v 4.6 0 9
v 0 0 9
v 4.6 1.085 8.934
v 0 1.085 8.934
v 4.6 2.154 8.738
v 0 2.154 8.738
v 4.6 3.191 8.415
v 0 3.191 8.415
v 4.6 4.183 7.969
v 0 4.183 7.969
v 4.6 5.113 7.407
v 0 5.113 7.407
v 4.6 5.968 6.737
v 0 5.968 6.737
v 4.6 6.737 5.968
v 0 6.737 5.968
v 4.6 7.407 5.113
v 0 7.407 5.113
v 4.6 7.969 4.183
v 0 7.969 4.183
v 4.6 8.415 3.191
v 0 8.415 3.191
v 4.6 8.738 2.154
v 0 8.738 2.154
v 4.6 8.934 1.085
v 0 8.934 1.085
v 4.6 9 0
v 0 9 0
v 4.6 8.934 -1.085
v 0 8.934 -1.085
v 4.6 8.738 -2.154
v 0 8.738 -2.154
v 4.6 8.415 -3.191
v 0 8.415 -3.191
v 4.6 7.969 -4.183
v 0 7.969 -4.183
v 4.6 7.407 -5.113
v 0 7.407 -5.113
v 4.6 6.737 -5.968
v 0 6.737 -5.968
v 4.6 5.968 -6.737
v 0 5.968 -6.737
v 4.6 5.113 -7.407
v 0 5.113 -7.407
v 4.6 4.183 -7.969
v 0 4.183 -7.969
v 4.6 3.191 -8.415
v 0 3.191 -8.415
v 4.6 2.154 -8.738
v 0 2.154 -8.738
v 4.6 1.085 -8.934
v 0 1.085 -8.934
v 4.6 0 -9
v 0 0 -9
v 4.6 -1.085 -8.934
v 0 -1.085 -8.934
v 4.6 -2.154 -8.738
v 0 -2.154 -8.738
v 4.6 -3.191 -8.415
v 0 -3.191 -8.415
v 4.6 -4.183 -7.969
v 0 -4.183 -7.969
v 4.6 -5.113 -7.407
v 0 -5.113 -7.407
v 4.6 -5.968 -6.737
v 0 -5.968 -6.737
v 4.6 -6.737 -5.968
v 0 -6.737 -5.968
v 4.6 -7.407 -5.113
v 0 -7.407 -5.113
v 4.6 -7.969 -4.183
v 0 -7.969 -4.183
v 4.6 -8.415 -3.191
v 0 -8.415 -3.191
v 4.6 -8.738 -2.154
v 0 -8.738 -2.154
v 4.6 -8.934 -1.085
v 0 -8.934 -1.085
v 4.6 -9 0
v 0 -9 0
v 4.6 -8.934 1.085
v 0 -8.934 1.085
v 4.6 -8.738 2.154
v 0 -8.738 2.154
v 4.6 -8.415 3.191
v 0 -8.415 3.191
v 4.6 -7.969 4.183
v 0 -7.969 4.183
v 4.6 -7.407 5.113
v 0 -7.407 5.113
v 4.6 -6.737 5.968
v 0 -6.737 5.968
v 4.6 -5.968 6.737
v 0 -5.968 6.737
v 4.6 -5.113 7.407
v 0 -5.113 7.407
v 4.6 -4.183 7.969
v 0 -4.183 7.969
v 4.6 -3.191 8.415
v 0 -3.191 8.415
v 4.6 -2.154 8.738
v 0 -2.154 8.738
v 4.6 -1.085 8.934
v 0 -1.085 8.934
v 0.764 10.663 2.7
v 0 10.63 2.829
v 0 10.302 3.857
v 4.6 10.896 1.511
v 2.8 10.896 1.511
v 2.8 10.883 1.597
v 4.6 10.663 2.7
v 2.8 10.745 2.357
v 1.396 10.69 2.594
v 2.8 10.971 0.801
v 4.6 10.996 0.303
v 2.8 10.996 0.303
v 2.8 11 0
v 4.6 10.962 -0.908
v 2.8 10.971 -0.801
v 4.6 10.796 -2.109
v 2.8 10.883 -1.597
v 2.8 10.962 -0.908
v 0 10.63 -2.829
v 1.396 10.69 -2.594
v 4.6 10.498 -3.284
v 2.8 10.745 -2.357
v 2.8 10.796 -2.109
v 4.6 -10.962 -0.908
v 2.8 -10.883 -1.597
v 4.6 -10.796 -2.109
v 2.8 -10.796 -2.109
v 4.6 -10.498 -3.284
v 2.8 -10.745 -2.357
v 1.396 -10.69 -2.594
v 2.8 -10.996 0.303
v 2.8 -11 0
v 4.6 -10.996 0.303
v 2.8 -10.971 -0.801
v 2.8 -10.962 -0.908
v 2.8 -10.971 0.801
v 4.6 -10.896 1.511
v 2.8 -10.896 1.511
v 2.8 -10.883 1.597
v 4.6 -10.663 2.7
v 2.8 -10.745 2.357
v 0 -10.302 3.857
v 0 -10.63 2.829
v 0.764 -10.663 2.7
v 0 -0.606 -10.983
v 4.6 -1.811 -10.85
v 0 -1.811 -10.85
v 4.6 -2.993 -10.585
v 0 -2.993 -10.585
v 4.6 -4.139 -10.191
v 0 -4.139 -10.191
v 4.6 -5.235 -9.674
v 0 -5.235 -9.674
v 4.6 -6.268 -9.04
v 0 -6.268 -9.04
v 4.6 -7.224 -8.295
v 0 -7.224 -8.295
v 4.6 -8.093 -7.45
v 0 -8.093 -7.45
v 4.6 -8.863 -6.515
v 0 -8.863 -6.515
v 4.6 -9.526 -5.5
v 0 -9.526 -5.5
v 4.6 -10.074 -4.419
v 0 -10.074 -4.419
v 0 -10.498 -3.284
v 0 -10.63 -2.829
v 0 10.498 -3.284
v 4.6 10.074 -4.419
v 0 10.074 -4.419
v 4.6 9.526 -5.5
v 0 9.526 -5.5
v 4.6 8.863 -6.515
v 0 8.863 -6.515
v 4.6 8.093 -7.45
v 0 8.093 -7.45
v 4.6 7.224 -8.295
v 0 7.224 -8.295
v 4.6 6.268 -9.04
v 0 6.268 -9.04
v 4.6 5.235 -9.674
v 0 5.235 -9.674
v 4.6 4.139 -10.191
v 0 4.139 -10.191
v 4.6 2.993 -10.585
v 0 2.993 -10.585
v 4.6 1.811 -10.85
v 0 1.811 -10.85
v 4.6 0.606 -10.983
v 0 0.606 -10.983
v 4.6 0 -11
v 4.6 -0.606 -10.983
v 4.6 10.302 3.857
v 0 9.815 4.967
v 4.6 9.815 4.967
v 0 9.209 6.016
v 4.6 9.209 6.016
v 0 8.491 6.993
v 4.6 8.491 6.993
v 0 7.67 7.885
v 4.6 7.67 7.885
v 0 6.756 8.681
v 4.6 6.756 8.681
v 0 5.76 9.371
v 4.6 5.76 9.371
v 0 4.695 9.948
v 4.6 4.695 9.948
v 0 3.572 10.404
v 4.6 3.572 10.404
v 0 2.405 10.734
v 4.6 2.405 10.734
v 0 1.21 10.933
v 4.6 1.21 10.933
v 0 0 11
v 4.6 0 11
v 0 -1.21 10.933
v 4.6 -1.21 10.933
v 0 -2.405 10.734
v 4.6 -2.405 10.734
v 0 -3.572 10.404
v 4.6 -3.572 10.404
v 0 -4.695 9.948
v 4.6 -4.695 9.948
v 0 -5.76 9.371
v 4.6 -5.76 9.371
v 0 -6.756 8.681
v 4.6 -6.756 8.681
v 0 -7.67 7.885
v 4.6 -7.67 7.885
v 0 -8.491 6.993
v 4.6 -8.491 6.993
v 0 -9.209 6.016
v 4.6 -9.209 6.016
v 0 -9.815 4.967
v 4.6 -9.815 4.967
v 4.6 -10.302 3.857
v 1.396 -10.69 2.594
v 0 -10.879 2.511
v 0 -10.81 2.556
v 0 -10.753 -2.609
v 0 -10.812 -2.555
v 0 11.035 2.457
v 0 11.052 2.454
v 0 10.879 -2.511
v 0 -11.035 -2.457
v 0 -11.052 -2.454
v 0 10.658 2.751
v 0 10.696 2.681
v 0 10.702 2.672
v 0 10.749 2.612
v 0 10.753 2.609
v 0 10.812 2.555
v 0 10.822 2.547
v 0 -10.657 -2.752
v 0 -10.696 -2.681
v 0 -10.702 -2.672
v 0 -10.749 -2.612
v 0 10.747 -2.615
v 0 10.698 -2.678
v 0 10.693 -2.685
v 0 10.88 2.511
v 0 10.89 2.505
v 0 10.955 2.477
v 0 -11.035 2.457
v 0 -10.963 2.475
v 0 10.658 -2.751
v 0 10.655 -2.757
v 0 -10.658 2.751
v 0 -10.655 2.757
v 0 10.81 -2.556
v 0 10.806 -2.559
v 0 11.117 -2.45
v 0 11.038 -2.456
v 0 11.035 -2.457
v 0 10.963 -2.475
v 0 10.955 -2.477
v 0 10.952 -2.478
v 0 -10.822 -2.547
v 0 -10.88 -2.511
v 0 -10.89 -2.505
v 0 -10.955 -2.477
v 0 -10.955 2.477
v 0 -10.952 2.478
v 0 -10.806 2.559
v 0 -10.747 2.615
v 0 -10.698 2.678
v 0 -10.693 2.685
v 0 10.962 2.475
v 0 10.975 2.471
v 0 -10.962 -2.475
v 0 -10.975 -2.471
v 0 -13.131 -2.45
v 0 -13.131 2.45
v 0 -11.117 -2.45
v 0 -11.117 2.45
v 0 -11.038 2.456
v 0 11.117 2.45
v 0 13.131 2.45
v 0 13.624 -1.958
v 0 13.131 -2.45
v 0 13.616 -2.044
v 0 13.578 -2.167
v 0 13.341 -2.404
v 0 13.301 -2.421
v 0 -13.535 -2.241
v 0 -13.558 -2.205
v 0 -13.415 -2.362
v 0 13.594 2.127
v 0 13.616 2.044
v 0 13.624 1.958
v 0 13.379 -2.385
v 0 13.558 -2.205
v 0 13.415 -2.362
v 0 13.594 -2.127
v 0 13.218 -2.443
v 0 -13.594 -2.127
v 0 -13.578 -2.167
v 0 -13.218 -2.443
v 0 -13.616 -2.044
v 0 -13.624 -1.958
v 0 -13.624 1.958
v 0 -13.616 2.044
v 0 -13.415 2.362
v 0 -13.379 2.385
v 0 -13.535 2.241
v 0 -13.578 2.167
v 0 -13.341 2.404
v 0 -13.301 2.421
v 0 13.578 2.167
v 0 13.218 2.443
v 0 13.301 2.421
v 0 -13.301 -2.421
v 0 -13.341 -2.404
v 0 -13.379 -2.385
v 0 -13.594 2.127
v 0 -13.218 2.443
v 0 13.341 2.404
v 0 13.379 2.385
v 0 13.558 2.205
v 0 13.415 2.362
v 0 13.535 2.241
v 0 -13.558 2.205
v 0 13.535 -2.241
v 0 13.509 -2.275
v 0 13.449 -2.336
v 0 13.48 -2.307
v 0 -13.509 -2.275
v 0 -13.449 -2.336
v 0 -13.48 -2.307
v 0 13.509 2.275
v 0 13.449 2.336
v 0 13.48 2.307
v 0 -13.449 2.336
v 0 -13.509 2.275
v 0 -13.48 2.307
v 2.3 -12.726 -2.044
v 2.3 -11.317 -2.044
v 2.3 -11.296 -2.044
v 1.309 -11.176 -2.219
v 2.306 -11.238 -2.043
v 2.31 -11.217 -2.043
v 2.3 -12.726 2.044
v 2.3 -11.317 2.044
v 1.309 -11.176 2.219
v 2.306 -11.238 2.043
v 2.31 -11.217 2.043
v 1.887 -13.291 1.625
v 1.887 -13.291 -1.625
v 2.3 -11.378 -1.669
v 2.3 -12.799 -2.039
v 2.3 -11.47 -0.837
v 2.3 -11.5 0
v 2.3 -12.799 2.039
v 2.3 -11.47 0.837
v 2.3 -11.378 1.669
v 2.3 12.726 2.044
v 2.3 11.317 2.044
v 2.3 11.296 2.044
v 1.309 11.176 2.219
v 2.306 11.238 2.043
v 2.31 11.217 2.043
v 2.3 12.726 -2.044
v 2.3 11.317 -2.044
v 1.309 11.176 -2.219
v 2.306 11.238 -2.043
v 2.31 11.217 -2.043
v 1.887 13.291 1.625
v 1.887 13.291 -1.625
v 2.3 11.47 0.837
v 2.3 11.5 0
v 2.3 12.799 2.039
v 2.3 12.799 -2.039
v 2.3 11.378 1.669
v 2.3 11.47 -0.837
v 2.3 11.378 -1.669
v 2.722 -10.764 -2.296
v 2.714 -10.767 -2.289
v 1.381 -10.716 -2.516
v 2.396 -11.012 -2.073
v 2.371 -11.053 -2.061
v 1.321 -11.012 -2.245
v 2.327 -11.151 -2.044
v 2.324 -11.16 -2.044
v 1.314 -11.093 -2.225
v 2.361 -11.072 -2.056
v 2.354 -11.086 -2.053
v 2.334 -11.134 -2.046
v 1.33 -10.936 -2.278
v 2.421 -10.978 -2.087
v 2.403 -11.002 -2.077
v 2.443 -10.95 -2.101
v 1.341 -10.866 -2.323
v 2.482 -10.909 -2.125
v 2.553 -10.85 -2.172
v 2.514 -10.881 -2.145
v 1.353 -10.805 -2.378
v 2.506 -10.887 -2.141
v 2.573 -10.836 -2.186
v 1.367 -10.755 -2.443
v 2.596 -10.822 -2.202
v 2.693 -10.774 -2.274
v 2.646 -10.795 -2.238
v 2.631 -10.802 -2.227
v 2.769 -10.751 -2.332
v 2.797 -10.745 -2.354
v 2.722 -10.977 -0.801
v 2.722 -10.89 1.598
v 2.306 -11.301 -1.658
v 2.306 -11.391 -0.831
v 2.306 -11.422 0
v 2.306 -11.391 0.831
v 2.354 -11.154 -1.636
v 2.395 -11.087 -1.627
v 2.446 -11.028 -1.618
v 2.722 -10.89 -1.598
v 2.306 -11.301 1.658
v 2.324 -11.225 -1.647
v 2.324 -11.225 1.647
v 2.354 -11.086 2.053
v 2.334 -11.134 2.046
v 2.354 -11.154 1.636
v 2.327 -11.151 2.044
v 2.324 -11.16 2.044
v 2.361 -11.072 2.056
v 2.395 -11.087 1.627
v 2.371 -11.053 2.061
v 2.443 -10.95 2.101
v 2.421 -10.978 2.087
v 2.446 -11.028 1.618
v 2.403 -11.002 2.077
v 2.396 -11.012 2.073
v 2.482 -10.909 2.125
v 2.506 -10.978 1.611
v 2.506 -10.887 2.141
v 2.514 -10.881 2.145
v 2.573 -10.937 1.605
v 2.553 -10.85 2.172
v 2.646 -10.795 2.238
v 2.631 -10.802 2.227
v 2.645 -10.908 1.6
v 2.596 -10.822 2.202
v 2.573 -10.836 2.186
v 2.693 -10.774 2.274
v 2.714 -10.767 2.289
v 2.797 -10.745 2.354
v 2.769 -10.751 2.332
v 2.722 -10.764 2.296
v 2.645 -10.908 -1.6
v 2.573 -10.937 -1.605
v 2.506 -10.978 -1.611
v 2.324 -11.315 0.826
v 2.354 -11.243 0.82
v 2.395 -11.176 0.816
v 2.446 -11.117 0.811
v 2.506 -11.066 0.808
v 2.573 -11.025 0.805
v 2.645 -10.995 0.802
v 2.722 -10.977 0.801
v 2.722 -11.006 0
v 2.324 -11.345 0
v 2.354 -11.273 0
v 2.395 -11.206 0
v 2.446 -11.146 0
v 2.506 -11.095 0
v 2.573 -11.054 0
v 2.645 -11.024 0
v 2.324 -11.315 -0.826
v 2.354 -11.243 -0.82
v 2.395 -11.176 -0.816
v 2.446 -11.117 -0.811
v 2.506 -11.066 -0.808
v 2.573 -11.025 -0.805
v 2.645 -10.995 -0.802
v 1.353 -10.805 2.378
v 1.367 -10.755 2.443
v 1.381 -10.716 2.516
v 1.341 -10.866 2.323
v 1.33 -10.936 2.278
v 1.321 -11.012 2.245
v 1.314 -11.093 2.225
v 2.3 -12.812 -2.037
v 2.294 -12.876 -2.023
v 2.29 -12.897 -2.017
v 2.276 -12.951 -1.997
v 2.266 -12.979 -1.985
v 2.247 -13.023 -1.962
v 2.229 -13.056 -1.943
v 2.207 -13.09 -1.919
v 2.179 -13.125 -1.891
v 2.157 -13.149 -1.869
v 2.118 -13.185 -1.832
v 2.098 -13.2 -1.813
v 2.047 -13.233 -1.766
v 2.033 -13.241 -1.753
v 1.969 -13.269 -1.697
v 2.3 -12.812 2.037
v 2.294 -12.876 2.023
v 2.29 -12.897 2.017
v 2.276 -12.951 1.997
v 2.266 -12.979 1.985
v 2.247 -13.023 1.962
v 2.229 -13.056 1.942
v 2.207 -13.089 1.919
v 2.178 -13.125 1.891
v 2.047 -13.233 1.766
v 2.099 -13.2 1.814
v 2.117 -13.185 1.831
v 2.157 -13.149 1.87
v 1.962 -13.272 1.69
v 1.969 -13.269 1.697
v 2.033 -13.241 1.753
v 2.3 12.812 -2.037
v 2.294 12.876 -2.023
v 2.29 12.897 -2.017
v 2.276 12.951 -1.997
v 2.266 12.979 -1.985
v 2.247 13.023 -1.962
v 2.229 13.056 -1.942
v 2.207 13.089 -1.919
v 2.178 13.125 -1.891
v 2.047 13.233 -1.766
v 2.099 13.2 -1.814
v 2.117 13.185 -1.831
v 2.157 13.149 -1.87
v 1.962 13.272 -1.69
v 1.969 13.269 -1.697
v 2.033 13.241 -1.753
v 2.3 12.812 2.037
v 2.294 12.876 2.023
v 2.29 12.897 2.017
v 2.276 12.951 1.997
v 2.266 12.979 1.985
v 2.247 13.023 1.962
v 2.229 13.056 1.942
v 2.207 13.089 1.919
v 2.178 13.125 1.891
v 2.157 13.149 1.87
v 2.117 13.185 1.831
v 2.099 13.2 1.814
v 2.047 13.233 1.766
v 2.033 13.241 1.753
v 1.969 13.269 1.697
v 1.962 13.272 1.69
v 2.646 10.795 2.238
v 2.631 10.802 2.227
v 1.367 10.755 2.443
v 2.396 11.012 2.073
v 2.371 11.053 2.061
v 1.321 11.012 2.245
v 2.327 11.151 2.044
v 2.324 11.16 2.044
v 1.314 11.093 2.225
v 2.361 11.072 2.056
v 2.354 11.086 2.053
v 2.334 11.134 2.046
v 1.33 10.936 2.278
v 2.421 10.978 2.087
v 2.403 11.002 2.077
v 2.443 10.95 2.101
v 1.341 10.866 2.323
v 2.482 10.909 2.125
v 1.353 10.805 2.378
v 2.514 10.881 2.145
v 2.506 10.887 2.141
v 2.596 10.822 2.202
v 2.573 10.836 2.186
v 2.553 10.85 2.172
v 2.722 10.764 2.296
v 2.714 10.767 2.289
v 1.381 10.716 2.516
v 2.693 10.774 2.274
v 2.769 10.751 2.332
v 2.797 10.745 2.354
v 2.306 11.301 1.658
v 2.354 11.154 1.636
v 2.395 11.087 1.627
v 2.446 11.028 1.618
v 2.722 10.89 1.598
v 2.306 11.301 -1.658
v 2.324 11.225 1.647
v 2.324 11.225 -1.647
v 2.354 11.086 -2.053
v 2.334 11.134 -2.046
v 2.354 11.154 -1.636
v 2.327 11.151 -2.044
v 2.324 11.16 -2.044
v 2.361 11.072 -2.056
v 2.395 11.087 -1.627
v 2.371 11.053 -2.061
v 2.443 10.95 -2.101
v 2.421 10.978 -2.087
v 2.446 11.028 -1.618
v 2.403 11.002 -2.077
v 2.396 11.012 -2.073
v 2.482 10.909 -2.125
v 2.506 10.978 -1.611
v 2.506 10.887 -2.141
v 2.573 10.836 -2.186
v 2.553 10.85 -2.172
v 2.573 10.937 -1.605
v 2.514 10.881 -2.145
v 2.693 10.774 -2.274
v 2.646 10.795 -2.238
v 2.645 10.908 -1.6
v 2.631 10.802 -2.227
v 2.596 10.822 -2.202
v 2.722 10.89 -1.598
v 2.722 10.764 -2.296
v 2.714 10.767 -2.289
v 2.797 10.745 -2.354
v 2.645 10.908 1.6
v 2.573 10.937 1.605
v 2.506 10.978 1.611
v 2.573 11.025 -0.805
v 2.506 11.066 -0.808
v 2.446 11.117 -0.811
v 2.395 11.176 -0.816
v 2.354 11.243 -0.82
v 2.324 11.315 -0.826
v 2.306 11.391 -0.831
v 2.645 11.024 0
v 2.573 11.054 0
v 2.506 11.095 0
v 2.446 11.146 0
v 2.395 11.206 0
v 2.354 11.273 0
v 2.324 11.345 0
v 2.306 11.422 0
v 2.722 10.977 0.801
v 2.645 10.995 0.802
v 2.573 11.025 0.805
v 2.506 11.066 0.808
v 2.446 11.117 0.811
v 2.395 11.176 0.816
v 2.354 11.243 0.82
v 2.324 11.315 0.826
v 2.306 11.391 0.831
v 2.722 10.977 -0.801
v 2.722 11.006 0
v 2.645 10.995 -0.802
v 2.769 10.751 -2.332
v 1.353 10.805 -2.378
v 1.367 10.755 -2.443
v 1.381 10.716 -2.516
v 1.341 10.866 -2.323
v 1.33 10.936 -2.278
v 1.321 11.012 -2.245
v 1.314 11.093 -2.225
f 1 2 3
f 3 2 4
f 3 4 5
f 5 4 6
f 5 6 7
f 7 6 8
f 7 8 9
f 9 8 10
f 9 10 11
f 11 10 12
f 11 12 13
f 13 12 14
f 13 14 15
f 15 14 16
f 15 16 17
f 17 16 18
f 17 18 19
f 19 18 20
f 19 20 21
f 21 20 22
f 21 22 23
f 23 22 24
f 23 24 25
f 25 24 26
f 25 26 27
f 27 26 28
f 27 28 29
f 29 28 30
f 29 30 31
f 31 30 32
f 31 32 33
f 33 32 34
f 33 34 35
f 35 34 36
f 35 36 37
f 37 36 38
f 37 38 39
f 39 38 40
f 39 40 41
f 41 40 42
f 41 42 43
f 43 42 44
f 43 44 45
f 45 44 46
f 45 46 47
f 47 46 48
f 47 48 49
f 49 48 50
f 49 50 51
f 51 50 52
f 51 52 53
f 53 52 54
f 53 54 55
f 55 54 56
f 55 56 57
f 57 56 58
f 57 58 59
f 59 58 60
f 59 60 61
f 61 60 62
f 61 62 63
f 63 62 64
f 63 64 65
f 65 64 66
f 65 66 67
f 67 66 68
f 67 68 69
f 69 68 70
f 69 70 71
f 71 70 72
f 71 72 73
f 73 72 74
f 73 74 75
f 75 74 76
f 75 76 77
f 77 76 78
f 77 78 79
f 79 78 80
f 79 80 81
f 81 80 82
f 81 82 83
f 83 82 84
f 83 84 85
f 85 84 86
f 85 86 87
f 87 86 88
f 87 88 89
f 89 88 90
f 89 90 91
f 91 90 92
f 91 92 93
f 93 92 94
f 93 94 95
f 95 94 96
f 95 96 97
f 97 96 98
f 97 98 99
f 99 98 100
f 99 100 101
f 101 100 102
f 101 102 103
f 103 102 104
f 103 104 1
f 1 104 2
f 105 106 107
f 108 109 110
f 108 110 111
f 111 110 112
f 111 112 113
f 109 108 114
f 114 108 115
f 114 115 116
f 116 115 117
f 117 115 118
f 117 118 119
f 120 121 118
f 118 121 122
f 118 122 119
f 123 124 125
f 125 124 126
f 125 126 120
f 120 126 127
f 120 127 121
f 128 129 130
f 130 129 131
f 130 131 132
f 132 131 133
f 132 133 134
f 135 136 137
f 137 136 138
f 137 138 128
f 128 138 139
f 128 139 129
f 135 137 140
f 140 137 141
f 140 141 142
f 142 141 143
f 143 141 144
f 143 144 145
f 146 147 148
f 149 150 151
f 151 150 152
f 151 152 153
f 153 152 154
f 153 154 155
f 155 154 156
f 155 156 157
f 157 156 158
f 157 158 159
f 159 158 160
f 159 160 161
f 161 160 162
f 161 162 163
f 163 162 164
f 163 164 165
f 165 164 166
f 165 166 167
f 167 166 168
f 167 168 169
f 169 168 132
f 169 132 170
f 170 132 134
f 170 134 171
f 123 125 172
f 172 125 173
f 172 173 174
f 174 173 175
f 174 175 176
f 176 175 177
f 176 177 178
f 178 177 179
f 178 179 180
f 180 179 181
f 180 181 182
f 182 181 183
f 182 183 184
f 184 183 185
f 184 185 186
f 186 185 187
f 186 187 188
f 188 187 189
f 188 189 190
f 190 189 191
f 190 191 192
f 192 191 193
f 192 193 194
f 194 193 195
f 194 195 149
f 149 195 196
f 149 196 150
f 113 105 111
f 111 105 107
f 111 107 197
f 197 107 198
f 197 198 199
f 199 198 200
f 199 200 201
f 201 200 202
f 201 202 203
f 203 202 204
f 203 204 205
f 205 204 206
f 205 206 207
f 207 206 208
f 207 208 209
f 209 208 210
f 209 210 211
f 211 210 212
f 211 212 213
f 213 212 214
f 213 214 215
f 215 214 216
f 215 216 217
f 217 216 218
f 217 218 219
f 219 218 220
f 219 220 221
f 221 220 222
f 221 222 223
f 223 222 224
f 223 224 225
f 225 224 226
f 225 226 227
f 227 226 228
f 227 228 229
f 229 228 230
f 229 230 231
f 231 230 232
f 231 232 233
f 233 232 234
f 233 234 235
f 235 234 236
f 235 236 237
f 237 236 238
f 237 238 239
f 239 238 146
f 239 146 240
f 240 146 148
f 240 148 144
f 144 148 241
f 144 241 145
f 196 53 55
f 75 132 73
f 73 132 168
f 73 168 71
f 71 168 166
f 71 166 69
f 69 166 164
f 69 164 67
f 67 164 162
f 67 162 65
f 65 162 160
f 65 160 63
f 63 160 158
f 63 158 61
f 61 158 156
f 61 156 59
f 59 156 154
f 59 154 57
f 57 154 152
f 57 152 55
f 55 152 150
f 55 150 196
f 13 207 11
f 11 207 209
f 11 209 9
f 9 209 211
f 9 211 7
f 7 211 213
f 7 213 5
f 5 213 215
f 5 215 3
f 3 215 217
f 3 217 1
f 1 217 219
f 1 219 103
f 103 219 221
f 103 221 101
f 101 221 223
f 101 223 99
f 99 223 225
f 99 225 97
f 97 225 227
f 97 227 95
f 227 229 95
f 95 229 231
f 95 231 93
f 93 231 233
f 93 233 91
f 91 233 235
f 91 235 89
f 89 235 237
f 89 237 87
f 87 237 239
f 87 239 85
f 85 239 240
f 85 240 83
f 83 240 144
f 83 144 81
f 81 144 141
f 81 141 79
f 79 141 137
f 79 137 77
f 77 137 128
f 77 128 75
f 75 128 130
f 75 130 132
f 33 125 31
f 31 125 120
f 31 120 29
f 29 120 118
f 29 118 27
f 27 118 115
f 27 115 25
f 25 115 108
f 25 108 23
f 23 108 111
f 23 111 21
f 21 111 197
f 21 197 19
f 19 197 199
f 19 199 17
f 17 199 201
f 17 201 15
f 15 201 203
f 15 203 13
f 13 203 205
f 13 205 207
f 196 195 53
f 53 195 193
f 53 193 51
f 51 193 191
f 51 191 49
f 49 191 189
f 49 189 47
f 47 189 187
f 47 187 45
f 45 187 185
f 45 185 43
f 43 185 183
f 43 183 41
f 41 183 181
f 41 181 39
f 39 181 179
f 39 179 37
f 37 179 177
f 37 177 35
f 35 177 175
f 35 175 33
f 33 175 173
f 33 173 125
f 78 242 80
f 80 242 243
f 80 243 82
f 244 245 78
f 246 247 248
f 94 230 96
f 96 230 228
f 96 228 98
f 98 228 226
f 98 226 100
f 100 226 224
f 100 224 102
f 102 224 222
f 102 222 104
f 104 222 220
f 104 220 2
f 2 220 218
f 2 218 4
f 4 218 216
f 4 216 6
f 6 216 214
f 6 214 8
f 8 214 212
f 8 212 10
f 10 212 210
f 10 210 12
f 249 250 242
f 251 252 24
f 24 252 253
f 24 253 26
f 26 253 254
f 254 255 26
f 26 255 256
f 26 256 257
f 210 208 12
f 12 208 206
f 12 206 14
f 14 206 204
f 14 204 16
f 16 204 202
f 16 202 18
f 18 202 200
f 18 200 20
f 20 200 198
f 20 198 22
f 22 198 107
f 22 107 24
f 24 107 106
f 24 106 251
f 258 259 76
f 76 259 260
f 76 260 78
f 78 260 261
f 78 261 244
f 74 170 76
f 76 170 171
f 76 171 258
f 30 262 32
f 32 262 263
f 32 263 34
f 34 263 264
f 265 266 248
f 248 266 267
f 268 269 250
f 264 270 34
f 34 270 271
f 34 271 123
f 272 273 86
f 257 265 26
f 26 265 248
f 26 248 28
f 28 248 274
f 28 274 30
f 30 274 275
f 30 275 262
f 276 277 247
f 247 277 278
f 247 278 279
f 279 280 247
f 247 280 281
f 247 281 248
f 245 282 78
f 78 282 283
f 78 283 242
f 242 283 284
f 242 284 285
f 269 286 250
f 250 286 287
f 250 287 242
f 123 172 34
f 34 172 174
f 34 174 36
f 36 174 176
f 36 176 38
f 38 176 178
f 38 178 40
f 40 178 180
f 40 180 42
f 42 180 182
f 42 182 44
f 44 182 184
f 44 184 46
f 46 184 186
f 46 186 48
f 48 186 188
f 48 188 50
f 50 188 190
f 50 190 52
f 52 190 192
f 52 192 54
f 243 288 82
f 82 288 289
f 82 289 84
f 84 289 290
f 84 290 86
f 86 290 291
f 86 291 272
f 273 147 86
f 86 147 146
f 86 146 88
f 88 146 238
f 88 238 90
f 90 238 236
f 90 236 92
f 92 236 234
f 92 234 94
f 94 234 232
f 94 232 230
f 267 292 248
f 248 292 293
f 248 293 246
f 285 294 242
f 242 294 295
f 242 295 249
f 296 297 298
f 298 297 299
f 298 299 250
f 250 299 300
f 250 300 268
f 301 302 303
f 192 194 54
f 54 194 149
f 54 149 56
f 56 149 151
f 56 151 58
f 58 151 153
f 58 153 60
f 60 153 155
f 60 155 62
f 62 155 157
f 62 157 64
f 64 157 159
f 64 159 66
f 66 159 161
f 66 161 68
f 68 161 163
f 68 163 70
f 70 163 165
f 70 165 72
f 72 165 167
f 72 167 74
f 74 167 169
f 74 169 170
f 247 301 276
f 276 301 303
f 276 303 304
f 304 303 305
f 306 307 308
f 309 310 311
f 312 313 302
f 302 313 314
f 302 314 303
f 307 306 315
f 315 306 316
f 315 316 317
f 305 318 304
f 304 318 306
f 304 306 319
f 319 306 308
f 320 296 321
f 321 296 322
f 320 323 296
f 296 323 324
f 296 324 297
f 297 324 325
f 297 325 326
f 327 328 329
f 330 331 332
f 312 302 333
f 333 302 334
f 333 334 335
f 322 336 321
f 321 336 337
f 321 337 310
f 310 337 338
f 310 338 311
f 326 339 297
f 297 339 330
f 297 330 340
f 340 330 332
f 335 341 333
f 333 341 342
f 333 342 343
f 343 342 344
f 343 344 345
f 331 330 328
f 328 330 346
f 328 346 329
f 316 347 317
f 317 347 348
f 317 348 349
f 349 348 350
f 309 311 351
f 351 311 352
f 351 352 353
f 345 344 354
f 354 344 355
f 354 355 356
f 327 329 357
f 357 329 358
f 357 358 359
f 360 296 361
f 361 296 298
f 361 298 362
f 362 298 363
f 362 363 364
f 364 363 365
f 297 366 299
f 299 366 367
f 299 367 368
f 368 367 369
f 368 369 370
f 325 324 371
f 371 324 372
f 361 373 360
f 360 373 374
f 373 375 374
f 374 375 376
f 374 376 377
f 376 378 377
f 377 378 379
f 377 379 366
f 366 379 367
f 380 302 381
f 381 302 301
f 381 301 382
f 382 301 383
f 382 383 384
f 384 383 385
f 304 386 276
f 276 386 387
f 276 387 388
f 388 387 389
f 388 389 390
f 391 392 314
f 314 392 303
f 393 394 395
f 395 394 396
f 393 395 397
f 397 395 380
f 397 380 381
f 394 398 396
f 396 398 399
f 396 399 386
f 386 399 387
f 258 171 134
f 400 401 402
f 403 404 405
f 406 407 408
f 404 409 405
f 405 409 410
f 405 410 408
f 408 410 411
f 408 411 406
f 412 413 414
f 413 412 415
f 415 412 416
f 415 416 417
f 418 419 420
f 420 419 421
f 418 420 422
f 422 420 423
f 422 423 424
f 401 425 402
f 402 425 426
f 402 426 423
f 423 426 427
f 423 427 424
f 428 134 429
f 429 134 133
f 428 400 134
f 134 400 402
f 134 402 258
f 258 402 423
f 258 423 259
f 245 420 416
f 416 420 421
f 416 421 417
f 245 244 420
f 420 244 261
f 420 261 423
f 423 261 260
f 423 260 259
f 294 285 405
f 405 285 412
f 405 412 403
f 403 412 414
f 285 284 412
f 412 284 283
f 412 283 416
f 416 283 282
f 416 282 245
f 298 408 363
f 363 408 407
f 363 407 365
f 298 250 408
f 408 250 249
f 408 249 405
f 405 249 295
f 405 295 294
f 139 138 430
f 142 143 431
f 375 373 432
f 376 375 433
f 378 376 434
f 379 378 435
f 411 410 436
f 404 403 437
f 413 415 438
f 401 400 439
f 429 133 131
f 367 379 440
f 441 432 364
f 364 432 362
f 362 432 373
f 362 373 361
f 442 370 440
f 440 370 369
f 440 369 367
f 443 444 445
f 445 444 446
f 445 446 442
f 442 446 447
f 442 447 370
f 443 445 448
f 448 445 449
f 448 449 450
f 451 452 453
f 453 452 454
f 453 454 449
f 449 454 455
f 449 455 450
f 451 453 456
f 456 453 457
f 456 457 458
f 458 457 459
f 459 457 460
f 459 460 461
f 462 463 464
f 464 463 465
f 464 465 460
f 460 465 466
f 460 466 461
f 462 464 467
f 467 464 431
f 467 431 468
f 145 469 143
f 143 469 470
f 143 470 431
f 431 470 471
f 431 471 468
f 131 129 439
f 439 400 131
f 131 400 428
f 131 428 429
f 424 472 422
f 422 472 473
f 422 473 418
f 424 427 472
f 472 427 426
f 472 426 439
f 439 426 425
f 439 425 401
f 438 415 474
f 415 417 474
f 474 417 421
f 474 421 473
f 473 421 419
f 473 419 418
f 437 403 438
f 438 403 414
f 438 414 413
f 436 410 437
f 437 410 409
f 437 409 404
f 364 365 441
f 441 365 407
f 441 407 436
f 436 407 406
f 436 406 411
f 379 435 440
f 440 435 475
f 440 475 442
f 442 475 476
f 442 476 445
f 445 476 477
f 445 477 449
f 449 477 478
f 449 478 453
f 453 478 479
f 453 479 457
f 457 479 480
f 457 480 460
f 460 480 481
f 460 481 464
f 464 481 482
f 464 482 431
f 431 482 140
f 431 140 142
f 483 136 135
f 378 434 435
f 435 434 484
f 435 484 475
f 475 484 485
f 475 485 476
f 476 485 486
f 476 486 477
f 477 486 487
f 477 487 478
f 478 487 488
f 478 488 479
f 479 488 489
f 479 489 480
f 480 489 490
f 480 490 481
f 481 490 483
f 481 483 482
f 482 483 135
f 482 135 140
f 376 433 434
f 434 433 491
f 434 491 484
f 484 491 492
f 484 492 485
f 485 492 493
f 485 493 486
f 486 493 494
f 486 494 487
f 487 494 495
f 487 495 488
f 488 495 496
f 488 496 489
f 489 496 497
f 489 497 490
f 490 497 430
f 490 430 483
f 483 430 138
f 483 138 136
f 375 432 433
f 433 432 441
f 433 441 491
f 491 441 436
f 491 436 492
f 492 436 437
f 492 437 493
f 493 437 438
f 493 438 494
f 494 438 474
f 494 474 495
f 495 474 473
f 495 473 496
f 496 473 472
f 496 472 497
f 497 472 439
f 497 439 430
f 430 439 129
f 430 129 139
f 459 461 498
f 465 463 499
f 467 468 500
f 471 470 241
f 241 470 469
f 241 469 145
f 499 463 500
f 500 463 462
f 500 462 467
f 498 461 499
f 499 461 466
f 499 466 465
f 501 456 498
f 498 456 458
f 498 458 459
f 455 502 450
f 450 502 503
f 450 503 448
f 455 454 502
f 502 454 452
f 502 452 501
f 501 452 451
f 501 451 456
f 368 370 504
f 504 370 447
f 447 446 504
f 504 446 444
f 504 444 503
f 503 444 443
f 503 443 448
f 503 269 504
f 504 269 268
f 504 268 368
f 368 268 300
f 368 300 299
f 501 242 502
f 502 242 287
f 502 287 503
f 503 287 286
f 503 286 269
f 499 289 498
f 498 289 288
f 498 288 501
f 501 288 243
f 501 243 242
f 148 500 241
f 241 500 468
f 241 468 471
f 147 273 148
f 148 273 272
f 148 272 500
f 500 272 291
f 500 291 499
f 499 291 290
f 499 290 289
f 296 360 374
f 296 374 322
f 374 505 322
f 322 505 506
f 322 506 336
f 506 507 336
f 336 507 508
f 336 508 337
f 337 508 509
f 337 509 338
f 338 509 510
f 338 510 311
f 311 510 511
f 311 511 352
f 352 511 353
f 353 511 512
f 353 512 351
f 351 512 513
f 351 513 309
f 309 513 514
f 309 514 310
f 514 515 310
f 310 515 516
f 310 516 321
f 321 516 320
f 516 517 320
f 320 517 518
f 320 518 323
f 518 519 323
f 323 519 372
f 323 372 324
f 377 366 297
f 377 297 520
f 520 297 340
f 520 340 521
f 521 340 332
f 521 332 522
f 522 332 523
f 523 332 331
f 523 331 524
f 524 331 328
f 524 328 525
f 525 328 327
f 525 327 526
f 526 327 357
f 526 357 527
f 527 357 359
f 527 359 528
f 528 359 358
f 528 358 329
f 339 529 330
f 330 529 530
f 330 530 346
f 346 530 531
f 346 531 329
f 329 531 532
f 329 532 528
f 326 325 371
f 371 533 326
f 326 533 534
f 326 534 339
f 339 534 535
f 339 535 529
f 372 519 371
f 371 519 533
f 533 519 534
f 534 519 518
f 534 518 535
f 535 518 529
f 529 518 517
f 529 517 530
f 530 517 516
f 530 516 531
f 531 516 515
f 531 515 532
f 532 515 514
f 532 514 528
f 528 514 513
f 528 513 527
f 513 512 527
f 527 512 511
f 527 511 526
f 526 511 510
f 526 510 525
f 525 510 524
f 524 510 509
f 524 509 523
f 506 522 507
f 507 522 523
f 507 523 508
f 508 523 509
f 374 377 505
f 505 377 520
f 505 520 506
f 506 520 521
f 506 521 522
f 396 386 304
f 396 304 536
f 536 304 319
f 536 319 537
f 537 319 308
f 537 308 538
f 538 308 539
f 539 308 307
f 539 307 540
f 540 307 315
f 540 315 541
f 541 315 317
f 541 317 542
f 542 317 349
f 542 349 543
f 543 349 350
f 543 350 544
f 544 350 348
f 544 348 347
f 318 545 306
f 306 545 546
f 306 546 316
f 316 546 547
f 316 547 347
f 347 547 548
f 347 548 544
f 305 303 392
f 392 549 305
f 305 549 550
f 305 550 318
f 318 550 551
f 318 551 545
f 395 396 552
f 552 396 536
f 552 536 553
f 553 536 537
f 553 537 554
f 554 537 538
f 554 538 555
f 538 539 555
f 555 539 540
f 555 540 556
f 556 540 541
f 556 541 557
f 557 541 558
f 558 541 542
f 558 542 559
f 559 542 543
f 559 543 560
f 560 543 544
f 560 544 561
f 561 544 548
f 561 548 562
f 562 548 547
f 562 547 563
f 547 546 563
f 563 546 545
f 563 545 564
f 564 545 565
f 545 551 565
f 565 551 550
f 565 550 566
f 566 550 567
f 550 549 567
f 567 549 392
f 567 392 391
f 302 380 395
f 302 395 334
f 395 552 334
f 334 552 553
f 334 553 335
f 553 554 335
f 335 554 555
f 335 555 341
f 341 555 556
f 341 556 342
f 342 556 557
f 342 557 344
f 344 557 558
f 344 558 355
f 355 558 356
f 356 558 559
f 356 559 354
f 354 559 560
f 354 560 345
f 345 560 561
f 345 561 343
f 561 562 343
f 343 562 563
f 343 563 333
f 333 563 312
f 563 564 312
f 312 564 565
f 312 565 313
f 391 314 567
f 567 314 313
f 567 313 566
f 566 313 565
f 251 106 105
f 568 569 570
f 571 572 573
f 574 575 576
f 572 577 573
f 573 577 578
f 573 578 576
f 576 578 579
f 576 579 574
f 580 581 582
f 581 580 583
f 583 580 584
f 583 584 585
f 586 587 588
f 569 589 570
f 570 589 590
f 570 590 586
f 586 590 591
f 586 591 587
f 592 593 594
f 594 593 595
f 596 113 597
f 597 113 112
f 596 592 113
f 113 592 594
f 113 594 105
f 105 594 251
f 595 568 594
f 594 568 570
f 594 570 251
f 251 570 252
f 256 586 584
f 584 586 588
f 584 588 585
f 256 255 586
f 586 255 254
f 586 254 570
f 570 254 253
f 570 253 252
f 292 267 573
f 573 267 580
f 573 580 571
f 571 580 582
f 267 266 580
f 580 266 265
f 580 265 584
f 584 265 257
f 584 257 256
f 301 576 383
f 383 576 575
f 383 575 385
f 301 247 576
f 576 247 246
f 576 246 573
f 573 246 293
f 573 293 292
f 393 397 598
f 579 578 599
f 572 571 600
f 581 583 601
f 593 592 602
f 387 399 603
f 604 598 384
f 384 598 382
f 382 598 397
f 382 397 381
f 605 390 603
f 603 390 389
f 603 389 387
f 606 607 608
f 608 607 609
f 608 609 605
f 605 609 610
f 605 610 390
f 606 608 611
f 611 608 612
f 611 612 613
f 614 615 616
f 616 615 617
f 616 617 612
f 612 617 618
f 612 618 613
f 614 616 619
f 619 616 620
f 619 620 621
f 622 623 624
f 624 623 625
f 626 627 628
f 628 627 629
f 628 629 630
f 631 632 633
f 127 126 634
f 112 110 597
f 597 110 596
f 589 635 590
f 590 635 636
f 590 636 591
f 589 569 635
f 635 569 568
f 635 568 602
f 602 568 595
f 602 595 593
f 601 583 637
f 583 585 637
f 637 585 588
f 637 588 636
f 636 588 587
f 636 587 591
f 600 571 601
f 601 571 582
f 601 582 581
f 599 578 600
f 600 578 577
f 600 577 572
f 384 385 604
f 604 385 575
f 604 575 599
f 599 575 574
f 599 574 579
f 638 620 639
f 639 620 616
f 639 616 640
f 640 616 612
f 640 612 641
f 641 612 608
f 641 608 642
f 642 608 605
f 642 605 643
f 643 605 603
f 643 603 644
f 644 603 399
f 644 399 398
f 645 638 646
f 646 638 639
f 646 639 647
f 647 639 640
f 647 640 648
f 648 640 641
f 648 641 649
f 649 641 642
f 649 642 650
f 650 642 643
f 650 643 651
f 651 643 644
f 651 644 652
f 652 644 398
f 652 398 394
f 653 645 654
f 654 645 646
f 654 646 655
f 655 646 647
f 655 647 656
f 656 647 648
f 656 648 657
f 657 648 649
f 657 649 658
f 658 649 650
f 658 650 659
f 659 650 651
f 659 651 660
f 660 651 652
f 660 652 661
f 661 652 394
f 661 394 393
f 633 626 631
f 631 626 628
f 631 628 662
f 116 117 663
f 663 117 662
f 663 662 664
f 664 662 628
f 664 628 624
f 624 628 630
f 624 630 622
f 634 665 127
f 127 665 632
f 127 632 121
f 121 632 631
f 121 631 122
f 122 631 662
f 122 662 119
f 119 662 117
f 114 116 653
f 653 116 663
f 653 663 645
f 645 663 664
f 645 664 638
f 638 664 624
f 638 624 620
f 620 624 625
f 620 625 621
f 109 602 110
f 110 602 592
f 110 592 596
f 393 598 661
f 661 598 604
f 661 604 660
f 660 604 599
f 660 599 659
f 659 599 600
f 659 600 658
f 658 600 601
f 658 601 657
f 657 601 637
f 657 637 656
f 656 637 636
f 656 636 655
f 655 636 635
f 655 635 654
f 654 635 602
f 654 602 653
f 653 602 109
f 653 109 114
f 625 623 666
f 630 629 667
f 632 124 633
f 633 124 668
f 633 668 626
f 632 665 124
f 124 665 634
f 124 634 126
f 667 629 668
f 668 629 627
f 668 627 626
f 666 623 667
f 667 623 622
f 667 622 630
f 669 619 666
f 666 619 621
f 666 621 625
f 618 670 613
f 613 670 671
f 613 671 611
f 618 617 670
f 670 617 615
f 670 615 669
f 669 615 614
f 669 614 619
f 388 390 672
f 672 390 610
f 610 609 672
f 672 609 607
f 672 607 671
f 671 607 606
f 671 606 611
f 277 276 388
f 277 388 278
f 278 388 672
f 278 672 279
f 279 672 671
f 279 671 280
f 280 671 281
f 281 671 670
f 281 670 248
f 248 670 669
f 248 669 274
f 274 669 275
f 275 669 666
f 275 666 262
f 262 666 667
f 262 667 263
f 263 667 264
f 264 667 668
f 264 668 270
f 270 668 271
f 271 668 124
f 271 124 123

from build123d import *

# Parameters (mm, degrees)
SKETCH1_R                     = 11
SKETCH1_R_2                   = 9
BOSS_EXTRUDE1_DEPTH           = 4.6
SKETCH1_3_R                   = 11
SKETCH1_3_R_2                 = 9
BOSS_EXTRUDE2_DEPTH           = 4.6
BOSS_EXTRUDE3_DEPTH           = 2.3
BOSS_EXTRUDE3_DRAFT           = -10
BOSS_EXTRUDE3_PROFILE_2_DEPTH = 2.3
BOSS_EXTRUDE3_PROFILE_2_DRAFT = -10
FILLET1_R                     = 0.5


with BuildPart() as part:
    # Sketch1 → Boss-Extrude1 (new body)
    with BuildSketch(Plane.YZ):
        Circle(SKETCH1_R)
        Circle(SKETCH1_R_2, mode=Mode.SUBTRACT)
    extrude(amount=BOSS_EXTRUDE1_DEPTH)

    # Sketch1<3> → Boss-Extrude2 (add)
    with BuildSketch(Plane.YZ):
        Circle(SKETCH1_3_R)
        Circle(SKETCH1_3_R_2, mode=Mode.SUBTRACT)
    extrude(amount=BOSS_EXTRUDE2_DEPTH)


with BuildPart() as boss_extrude3_tool:
    # Sketch2 → Boss-Extrude3 (with draft: the straight prism first)
    with BuildSketch(Plane(origin=(0, 0, 0), x_dir=(0, -1, 0), z_dir=(-1, 0, 0))):
        with BuildLine():
            Line((-13.623688731, -2.45), (-10.723688731, -2.45))
            Line((-10.723688731, -2.45), (-8.660109699, -2.45))
            ThreePointArc((-8.660109699, -2.45), (-9, 0), (-8.660109699, 2.45))
            Line((-8.660109699, 2.45), (-10.723688731, 2.45))
            Line((-10.723688731, 2.45), (-13.623688731, 2.45))
            Line((-13.623688731, 2.45), (-13.623688731, -2.45))
        make_face()
    extrude(amount=-BOSS_EXTRUDE3_DEPTH)
    # Boss-Extrude3: the draft: its side faces are tilted about the plane it starts from
    boss_extrude3_sides = [boss_extrude3_tool.faces().sort_by_distance(p)[0] for p in [
        (1.15, 11.141899215, -2.45),
        (1.15, 11.141899215, 2.45),
        (1.15, 9, 0),
        (1.15, 13.623688731, 0),
    ]]
    draft(boss_extrude3_sides, Plane(origin=(0, 0, 0), x_dir=(0, -1, 0), z_dir=(-1, 0, 0)), BOSS_EXTRUDE3_DRAFT)


with BuildPart() as part_1:
    add(part.part)

    # Boss-Extrude3: add boss_extrude3_tool
    add(boss_extrude3_tool.part)


with BuildPart() as boss_extrude3_profile_2_tool:
    # Sketch2 → Boss-Extrude3 profile 2 (with draft: the straight prism first)
    with BuildSketch(Plane(origin=(0, 0, 0), x_dir=(0, -1, 0), z_dir=(-1, 0, 0))):
        with BuildLine():
            Line((10.723688731, -2.45), (13.623688731, -2.45))
            Line((13.623688731, -2.45), (13.623688731, 2.45))
            Line((13.623688731, 2.45), (10.723688731, 2.45))
            Line((10.723688731, 2.45), (8.660109699, 2.45))
            ThreePointArc((8.660109699, 2.45), (9, 0), (8.660109699, -2.45))
            Line((8.660109699, -2.45), (10.723688731, -2.45))
        make_face()
    extrude(amount=-BOSS_EXTRUDE3_PROFILE_2_DEPTH)
    # Boss-Extrude3 profile 2: the draft: its side faces are tilted about the plane it starts from
    boss_extrude3_profile_2_sides = [boss_extrude3_profile_2_tool.faces().sort_by_distance(p)[0] for p in [
        (1.15, -11.141899215, -2.45),
        (1.15, -11.141899215, 2.45),
        (1.15, -13.623688731, 0),
        (1.15, -9, 0),
    ]]
    draft(boss_extrude3_profile_2_sides, Plane(origin=(0, 0, 0), x_dir=(0, -1, 0), z_dir=(-1, 0, 0)), BOSS_EXTRUDE3_PROFILE_2_DRAFT)


with BuildPart() as part_2:
    add(part_1.part)

    # Boss-Extrude3 profile 2: add boss_extrude3_profile_2_tool
    add(boss_extrude3_profile_2_tool.part)

    # Fillet1
    fillet1_edges = [part_2.edges().sort_by_distance(p)[0] for p in [
        (1.149928959, -10.768004835, 2.247236499),
        (2.3, -13.218136675, 0),
        (1.15, -13.420912703, 2.247223972),
        (1.15, -13.420912703, -2.247223972),
        (1.149928959, -10.768004835, -2.247236499),
        (2.3, -11, 0),
        (1.15, 13.420912703, 2.247223972),
        (1.15, 13.420912703, -2.247223972),
        (1.149928959, 10.768004835, -2.247236499),
        (1.149928959, 10.768004835, 2.247236499),
        (2.3, 13.218136675, 0),
        (2.3, 10.951980407, -1.026705972),
    ]]
    fillet(fillet1_edges, radius=FILLET1_R)


solid = part_2.part
